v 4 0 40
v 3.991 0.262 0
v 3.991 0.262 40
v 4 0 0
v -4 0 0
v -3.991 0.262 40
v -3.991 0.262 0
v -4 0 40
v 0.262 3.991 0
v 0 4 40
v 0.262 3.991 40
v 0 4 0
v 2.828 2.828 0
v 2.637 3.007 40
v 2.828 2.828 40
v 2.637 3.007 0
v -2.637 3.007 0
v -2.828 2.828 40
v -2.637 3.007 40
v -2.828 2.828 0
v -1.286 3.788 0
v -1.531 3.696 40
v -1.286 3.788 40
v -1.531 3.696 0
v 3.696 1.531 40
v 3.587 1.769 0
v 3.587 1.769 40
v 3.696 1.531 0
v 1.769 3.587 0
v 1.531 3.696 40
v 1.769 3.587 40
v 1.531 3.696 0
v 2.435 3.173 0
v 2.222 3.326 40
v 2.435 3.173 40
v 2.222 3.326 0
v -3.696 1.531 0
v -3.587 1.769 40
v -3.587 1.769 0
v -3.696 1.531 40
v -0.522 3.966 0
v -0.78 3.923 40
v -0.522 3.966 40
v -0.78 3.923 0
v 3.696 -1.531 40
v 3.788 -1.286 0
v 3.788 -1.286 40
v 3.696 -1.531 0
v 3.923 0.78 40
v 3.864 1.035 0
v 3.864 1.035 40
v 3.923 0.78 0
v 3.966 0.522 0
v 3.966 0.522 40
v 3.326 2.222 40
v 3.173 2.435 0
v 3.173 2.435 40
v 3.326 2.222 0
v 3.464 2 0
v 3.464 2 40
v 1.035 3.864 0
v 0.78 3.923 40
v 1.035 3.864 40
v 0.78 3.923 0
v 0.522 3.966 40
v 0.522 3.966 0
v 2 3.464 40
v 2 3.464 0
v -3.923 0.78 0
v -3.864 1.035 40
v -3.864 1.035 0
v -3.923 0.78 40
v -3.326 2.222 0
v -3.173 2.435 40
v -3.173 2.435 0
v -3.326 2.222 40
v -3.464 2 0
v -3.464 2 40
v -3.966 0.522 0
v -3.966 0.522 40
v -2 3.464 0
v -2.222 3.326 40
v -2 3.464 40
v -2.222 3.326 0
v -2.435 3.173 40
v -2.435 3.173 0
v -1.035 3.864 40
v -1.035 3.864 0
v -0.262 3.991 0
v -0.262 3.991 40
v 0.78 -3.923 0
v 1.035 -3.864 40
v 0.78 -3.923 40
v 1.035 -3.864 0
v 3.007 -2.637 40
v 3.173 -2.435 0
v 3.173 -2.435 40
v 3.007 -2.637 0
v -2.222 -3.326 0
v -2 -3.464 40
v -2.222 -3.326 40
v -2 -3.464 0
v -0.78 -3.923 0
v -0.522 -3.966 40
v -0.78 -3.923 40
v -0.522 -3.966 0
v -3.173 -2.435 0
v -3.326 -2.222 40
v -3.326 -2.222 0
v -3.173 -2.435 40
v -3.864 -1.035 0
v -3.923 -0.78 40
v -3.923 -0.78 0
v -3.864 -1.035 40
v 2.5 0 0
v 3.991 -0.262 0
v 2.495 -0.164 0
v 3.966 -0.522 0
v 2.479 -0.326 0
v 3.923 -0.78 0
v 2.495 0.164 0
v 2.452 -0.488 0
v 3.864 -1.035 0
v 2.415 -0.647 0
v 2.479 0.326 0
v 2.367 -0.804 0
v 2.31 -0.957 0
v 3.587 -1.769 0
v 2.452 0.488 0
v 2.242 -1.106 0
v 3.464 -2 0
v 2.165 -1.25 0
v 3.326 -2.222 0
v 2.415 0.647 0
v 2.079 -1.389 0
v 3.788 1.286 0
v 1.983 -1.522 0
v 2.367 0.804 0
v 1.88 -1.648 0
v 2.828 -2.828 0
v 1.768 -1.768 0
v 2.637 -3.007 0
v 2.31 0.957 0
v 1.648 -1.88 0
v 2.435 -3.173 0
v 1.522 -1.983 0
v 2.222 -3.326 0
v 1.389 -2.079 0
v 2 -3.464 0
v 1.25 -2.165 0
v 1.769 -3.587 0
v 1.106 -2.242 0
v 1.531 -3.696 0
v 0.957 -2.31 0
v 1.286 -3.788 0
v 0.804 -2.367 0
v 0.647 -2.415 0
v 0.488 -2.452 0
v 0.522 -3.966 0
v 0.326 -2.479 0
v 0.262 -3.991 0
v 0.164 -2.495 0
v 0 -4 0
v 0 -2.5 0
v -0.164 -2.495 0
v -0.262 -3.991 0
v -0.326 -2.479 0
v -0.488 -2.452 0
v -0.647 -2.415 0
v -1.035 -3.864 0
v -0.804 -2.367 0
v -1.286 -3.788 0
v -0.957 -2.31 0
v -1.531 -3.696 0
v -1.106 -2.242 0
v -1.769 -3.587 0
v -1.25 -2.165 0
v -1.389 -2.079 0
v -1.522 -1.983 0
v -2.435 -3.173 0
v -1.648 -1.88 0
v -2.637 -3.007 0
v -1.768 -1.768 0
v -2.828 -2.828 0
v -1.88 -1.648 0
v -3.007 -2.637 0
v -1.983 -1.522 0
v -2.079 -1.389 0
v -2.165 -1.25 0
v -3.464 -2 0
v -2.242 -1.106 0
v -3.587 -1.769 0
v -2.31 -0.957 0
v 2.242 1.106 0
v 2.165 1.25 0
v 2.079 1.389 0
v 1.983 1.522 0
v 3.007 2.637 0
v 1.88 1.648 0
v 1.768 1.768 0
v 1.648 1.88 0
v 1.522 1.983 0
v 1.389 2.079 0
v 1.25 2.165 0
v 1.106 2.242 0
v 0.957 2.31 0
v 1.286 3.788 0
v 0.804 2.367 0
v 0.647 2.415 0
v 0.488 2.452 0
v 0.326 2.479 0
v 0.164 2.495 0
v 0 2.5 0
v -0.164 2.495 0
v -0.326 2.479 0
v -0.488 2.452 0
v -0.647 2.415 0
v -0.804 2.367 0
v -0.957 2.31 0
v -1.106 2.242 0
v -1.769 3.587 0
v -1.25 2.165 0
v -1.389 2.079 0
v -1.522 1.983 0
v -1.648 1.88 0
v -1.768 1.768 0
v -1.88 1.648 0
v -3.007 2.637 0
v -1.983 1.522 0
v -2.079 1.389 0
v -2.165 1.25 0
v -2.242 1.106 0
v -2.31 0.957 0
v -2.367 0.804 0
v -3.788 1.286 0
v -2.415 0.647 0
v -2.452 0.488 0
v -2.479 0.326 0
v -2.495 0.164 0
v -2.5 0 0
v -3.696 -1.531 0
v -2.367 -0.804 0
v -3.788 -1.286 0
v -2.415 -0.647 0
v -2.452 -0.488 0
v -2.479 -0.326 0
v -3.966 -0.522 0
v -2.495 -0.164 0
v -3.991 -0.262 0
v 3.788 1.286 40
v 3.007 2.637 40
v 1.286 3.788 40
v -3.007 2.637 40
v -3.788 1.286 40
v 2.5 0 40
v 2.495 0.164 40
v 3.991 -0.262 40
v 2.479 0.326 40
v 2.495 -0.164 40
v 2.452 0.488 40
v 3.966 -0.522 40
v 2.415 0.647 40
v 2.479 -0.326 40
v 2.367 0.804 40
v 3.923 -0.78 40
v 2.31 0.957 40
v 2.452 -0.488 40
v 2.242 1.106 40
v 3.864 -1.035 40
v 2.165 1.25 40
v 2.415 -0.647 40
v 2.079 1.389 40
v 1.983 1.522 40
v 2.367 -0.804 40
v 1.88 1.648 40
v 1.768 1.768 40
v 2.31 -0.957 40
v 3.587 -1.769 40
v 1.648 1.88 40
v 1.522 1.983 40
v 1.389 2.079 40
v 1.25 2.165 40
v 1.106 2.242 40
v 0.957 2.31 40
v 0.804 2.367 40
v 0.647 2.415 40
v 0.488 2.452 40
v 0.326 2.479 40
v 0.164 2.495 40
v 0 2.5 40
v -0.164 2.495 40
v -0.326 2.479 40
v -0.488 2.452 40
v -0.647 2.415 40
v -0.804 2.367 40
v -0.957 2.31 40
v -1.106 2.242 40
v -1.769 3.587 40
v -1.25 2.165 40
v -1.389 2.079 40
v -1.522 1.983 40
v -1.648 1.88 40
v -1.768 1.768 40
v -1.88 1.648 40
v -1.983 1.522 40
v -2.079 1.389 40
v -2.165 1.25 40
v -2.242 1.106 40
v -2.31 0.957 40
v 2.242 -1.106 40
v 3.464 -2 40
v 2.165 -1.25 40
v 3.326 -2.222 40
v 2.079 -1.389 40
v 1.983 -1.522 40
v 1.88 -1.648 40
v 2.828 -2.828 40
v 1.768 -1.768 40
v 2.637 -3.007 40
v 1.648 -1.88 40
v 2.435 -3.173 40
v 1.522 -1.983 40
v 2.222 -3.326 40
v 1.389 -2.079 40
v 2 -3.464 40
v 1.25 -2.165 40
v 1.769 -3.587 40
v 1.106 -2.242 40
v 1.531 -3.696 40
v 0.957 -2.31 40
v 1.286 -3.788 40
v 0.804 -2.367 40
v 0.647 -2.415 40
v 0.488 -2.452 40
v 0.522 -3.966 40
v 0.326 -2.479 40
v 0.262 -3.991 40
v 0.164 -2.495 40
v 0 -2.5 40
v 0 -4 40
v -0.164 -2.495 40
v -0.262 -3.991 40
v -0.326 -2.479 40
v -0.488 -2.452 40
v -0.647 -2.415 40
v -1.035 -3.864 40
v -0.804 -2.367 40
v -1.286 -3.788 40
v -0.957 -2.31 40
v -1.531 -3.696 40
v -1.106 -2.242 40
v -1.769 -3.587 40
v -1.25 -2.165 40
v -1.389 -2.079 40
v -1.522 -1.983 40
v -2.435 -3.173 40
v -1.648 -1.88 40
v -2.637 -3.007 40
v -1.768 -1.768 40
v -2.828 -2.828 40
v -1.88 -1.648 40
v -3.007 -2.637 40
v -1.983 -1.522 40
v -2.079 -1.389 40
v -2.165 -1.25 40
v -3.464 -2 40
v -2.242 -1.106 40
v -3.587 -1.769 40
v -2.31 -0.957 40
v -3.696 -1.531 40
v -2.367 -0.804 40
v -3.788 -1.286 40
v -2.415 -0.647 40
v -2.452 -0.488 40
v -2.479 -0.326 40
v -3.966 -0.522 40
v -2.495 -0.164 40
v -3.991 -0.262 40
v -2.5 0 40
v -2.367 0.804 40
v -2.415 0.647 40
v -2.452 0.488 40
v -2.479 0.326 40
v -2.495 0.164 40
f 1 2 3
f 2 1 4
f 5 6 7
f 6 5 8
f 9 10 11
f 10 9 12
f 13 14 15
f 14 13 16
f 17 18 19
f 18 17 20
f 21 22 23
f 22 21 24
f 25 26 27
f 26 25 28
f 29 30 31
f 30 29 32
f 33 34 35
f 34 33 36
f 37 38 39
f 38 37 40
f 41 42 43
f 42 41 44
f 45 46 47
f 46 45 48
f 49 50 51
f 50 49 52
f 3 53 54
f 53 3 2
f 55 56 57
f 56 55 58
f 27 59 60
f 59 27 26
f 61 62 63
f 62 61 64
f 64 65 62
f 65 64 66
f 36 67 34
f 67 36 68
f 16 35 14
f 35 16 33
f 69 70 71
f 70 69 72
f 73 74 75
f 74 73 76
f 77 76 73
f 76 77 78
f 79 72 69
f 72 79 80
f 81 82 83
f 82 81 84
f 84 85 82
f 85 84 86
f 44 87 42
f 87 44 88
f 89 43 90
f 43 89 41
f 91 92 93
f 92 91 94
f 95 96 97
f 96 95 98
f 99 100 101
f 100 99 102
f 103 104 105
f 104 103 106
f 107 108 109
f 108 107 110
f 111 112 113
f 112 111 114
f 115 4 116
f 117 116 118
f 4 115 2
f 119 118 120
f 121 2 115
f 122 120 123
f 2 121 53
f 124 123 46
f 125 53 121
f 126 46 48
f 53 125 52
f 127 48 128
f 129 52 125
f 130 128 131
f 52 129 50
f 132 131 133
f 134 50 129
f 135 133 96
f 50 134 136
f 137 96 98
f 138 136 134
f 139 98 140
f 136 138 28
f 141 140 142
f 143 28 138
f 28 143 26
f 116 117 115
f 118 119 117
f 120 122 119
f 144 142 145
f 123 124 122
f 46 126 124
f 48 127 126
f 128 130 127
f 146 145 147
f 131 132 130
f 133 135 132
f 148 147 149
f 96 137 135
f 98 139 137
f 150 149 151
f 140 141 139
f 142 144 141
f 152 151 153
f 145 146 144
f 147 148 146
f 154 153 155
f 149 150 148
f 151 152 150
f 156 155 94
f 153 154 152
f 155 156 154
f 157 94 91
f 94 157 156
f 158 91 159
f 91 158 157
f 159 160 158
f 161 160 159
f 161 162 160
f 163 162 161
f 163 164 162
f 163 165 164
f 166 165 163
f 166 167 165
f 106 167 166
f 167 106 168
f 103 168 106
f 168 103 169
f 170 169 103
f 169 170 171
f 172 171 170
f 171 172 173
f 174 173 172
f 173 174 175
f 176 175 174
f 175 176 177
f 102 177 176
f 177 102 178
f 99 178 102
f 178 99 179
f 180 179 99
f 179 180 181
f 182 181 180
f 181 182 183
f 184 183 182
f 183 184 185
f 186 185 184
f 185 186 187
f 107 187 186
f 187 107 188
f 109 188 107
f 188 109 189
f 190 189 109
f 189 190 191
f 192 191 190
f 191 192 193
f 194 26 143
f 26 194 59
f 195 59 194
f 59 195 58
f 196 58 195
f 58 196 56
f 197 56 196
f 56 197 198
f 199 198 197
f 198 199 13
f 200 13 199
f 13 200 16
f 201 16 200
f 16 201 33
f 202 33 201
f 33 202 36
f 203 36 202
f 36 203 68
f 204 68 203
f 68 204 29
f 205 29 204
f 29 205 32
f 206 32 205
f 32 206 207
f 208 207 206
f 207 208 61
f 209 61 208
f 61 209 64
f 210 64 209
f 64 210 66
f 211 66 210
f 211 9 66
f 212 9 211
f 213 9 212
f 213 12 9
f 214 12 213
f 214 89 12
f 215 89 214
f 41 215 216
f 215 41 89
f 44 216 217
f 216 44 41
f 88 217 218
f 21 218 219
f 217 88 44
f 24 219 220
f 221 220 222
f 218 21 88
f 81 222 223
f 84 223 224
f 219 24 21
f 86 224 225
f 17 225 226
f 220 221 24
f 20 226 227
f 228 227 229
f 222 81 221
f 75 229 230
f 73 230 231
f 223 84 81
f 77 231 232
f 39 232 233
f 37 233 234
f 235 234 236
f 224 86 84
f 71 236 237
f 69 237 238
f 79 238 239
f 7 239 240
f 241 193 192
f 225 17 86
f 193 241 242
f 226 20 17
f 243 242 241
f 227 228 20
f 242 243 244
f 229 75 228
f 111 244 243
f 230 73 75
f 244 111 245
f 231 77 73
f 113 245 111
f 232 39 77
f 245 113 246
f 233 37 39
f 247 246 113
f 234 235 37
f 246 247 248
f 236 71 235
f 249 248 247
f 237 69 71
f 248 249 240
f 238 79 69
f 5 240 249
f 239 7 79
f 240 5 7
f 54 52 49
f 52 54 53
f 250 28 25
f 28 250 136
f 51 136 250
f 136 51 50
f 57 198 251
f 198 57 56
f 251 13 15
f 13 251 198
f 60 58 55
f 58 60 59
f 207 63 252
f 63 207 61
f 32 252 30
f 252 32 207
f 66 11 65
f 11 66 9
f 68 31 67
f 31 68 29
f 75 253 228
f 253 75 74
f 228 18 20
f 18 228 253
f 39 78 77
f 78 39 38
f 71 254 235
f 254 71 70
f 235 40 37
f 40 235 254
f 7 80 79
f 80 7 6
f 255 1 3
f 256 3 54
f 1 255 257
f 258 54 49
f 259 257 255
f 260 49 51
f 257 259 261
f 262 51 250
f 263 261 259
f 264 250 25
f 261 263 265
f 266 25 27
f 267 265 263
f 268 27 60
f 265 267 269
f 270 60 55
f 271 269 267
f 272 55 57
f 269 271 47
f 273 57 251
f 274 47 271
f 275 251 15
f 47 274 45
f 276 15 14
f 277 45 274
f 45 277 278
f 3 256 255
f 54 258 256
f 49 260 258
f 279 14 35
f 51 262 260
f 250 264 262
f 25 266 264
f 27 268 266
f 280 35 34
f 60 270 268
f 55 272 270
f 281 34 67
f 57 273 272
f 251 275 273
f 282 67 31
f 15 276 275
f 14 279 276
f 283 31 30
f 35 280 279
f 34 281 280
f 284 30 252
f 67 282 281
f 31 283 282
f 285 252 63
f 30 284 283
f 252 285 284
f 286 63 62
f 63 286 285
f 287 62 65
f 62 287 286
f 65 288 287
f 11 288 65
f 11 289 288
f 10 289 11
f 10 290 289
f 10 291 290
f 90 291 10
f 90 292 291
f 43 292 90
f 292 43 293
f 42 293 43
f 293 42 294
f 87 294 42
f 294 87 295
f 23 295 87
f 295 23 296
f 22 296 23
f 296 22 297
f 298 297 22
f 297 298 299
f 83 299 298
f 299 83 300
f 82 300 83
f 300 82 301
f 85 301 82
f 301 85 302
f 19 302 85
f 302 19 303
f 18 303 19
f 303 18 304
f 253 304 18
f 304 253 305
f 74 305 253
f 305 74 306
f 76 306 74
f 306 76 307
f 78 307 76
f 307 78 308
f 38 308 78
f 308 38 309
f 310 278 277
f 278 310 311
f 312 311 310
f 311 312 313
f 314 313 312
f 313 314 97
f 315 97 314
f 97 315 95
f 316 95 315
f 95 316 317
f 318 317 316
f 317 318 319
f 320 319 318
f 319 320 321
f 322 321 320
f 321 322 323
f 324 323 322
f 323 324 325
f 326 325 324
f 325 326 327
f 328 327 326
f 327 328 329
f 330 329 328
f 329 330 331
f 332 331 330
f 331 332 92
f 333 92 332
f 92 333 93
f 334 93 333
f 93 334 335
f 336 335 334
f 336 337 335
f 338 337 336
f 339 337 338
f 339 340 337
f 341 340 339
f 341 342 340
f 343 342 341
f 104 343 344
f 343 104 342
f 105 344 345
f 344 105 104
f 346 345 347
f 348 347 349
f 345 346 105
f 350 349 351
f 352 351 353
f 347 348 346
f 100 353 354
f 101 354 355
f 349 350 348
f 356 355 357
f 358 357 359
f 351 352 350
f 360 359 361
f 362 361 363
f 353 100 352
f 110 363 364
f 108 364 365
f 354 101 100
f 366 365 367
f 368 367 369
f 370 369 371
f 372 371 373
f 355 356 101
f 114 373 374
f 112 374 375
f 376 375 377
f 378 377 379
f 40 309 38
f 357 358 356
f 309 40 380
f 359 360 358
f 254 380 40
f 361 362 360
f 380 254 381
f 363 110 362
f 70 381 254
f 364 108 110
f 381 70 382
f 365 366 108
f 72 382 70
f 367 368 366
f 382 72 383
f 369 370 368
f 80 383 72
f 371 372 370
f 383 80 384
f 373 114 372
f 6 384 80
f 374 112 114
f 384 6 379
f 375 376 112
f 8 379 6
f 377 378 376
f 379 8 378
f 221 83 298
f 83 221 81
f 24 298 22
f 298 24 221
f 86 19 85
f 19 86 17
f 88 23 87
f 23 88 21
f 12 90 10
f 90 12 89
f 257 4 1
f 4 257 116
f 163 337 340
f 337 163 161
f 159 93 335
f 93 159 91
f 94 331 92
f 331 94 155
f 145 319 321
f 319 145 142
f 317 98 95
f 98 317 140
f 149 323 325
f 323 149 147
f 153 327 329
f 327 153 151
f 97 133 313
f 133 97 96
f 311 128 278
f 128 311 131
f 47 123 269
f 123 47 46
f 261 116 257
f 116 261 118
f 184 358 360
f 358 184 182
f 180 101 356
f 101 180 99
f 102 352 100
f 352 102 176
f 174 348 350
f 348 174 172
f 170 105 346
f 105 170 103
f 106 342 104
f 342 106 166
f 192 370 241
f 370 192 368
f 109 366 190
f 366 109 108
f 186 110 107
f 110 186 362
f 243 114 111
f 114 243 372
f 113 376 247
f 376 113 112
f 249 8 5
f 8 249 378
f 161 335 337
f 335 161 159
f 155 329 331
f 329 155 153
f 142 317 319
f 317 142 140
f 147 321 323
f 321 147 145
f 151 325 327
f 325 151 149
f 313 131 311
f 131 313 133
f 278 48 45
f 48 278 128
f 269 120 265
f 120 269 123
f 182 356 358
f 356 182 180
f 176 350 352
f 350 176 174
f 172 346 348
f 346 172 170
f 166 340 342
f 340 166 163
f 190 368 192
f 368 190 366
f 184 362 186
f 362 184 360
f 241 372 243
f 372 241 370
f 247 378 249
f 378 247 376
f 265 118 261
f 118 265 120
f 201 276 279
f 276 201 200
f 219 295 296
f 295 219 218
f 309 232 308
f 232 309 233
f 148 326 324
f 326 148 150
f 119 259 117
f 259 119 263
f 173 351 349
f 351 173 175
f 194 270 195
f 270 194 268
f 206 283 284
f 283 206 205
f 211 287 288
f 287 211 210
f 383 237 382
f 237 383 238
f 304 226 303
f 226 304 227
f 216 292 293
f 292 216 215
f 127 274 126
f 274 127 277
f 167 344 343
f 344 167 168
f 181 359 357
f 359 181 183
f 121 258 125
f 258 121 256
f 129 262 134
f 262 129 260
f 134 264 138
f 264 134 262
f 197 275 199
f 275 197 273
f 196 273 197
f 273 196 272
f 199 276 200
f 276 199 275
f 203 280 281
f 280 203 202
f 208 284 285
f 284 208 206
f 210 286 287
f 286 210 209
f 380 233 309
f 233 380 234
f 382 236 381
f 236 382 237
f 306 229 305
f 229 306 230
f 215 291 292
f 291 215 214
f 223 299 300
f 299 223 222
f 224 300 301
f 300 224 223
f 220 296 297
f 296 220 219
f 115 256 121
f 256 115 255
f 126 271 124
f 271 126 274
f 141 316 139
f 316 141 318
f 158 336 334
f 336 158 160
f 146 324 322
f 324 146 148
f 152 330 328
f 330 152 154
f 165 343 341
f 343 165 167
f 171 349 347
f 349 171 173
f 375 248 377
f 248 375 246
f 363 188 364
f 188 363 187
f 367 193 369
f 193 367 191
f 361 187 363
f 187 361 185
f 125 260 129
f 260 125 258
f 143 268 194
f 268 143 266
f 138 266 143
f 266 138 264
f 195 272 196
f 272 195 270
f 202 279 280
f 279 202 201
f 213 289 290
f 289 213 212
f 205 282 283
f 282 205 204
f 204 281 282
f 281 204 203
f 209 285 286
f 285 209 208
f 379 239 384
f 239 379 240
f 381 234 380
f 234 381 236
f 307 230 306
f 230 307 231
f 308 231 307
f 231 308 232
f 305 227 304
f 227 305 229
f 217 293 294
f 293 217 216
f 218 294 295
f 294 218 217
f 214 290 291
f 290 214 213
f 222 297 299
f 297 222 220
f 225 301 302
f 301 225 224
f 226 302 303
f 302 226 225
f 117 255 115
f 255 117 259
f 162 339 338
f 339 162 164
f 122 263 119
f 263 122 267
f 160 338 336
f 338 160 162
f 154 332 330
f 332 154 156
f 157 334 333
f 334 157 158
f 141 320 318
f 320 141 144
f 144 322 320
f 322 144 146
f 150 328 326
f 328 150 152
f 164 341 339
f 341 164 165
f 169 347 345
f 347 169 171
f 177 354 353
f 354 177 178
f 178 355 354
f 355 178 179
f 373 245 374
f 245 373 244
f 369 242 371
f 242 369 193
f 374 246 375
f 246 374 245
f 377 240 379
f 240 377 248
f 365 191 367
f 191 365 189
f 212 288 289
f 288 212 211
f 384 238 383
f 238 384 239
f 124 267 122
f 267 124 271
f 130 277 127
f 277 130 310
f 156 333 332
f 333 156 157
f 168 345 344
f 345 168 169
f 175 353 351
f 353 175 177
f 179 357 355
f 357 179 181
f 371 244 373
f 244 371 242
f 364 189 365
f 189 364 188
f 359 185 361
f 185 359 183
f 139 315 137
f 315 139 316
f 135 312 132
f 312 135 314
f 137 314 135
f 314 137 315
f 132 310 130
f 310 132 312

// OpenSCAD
/*
  GPS mast tube

  Project requirement:
  - Outside diameter: 8 mm
  - Tube length: 40 mm
  - Shape: cylindrical tube

  The 1.5 mm wall leaves a 5 mm inside diameter.
*/

$fn = 96;

outer_diameter = 8;
length = 40;
wall_thickness = 1.5;

inner_diameter = outer_diameter - (wall_thickness * 2);

module gps_mast_tube() {
    difference() {
        cylinder(h = length, d = outer_diameter);

        translate([0, 0, -0.1]) {
            cylinder(h = length + 0.2, d = inner_diameter);
        }
    }
}

gps_mast_tube();
